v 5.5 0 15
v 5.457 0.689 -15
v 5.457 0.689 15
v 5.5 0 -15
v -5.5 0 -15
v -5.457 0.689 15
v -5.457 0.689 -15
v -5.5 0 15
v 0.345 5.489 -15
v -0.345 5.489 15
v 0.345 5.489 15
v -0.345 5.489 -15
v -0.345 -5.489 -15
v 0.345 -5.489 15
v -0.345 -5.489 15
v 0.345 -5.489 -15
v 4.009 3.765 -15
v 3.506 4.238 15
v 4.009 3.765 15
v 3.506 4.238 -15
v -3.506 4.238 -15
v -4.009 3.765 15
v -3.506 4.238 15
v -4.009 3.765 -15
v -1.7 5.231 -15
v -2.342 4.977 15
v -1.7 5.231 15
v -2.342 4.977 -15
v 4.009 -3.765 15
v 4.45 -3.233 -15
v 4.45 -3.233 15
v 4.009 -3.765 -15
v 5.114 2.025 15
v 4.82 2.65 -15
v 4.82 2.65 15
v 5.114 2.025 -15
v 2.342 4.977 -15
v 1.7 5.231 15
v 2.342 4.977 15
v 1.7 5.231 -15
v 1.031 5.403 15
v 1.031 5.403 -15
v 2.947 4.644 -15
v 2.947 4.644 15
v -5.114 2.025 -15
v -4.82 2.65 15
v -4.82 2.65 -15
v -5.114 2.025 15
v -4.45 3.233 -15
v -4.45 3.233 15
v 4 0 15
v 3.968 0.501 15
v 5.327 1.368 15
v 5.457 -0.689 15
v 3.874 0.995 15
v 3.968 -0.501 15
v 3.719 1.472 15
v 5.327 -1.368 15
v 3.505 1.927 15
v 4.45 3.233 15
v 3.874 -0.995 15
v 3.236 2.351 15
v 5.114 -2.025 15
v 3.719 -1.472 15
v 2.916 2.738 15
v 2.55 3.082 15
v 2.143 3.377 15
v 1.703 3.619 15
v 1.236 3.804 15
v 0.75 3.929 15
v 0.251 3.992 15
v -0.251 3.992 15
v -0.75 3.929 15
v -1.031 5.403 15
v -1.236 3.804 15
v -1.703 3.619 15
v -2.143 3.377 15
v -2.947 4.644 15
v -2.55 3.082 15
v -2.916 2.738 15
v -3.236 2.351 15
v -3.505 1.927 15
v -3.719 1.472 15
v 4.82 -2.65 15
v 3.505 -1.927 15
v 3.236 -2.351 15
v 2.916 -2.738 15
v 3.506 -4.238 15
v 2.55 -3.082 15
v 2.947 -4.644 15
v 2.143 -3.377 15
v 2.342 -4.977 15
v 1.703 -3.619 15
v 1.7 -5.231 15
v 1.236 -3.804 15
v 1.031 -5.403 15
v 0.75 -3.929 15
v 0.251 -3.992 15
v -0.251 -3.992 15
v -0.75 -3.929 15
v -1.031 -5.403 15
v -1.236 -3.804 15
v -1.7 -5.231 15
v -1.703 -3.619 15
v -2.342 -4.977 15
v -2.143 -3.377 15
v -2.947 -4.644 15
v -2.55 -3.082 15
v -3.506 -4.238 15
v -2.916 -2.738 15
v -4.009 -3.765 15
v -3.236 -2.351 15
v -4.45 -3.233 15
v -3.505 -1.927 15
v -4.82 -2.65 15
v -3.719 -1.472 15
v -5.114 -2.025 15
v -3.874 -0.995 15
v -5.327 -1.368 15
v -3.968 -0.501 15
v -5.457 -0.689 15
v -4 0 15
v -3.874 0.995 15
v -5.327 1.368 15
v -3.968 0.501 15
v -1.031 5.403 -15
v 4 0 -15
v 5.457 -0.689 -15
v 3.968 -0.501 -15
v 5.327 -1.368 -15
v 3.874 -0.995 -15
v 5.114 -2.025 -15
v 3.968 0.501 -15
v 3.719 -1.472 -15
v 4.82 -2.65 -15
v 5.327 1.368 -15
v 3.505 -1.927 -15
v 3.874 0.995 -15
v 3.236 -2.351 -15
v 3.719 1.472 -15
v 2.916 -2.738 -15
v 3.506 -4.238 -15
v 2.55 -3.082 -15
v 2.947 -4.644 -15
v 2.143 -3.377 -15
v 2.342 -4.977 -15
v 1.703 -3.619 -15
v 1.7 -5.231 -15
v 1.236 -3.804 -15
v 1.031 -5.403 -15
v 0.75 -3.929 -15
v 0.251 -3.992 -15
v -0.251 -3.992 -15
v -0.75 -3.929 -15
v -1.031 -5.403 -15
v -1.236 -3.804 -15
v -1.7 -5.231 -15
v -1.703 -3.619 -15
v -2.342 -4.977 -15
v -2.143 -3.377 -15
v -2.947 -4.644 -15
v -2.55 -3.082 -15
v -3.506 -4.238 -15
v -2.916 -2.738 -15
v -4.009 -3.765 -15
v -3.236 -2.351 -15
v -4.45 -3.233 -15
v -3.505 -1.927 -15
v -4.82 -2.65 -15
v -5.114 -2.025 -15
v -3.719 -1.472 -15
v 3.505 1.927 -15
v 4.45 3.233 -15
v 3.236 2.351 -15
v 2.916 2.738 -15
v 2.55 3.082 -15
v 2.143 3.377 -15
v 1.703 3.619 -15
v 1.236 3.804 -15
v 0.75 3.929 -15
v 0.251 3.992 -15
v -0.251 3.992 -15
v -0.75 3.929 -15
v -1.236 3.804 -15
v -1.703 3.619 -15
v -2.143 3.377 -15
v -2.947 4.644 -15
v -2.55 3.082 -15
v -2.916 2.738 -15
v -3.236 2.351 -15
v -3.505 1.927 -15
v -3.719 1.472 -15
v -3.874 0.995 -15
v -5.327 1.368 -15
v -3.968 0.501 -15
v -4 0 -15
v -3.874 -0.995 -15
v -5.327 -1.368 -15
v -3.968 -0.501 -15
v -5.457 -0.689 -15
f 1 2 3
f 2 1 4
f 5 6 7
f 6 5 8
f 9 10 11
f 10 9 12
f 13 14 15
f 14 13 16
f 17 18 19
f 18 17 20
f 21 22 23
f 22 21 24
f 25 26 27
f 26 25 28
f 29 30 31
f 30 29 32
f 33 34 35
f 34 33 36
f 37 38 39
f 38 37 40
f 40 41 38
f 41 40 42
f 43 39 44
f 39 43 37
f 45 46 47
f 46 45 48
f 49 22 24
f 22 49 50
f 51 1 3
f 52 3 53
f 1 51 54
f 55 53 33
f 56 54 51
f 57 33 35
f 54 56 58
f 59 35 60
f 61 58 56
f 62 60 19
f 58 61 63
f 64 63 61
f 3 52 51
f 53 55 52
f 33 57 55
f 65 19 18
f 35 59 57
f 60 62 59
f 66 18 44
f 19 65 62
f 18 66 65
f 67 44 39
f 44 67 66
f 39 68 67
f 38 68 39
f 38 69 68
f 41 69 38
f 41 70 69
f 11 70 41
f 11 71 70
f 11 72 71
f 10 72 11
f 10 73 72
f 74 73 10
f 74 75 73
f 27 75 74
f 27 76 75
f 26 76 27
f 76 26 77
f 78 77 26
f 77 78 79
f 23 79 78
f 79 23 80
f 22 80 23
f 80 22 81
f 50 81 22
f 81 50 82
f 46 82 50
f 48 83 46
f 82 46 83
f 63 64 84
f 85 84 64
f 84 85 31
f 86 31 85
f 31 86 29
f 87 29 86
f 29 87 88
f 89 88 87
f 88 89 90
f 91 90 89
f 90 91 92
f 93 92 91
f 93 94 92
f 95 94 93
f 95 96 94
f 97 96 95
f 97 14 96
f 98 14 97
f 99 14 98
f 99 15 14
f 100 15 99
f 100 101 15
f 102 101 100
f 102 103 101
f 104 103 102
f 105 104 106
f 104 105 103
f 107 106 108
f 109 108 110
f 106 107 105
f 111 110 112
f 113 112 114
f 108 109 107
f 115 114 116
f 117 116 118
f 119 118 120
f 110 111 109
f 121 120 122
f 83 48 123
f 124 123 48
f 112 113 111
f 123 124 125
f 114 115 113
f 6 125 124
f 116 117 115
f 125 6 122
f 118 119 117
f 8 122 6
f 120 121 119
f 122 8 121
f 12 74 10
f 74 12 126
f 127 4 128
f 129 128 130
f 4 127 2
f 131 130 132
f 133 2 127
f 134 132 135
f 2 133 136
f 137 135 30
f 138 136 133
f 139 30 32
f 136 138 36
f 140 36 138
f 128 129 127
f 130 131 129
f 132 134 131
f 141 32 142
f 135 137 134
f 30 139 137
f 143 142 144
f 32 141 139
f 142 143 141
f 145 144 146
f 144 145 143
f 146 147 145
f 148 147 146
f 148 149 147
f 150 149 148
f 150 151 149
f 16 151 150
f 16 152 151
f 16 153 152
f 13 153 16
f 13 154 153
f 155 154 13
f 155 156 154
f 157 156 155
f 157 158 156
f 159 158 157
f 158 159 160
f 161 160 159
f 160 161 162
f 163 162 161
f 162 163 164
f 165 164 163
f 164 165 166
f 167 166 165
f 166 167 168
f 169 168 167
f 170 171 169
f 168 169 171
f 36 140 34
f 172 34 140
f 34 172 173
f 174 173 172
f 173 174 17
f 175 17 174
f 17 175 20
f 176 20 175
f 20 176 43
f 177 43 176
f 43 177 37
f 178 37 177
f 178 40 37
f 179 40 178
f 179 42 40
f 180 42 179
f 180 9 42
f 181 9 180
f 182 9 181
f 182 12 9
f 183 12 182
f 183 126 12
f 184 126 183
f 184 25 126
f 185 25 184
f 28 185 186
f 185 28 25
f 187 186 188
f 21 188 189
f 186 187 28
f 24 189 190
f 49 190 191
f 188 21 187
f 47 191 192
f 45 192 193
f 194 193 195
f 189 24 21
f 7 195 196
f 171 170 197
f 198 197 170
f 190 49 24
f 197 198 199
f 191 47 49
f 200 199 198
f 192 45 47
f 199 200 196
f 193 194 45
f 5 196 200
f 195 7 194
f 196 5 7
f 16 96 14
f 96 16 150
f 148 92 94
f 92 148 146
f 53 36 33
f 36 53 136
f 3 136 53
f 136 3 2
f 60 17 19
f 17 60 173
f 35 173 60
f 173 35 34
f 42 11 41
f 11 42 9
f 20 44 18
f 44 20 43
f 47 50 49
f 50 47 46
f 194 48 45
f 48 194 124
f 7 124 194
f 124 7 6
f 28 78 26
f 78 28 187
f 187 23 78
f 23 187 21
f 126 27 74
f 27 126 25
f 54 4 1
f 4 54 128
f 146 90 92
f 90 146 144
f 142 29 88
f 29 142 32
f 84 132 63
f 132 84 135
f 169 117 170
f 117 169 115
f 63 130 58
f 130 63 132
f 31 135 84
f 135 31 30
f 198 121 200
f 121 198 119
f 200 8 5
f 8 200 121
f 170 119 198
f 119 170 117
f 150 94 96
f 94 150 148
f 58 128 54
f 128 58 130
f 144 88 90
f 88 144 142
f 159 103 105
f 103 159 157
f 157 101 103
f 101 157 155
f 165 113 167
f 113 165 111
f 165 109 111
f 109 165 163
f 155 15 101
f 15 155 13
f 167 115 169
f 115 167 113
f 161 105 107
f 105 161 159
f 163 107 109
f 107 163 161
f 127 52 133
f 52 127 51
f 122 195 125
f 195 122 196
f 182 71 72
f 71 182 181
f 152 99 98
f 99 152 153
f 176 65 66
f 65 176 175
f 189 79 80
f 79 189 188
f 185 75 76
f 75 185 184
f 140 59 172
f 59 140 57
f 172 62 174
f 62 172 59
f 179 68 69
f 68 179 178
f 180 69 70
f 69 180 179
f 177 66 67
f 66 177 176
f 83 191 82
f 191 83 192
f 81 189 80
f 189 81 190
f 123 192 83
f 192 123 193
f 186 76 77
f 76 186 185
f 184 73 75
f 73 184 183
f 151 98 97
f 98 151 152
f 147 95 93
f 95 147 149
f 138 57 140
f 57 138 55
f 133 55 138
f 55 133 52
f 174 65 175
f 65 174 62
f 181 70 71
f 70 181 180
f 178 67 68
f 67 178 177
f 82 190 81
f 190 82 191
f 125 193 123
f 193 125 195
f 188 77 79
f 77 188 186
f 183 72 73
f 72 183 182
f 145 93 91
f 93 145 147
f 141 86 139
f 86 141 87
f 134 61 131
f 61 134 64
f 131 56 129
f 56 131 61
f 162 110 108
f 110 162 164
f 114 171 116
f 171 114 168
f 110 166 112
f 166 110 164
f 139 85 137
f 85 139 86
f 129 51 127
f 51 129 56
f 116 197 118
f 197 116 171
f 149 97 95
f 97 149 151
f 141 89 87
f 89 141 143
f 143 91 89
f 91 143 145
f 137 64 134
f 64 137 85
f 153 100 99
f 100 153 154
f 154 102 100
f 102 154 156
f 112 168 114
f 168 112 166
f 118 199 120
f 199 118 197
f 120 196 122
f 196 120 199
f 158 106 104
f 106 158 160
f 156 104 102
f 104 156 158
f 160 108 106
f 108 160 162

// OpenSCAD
$fn = 50;


difference() {
	union() {
		translate(v = [0, 0, -15.0000000000]) {
			cylinder(h = 30, r = 5.5000000000);
		}
	}
	union() {
		translate(v = [0, 0, -100.0000000000]) {
			cylinder(h = 200, r = 4);
		}
	}
}
